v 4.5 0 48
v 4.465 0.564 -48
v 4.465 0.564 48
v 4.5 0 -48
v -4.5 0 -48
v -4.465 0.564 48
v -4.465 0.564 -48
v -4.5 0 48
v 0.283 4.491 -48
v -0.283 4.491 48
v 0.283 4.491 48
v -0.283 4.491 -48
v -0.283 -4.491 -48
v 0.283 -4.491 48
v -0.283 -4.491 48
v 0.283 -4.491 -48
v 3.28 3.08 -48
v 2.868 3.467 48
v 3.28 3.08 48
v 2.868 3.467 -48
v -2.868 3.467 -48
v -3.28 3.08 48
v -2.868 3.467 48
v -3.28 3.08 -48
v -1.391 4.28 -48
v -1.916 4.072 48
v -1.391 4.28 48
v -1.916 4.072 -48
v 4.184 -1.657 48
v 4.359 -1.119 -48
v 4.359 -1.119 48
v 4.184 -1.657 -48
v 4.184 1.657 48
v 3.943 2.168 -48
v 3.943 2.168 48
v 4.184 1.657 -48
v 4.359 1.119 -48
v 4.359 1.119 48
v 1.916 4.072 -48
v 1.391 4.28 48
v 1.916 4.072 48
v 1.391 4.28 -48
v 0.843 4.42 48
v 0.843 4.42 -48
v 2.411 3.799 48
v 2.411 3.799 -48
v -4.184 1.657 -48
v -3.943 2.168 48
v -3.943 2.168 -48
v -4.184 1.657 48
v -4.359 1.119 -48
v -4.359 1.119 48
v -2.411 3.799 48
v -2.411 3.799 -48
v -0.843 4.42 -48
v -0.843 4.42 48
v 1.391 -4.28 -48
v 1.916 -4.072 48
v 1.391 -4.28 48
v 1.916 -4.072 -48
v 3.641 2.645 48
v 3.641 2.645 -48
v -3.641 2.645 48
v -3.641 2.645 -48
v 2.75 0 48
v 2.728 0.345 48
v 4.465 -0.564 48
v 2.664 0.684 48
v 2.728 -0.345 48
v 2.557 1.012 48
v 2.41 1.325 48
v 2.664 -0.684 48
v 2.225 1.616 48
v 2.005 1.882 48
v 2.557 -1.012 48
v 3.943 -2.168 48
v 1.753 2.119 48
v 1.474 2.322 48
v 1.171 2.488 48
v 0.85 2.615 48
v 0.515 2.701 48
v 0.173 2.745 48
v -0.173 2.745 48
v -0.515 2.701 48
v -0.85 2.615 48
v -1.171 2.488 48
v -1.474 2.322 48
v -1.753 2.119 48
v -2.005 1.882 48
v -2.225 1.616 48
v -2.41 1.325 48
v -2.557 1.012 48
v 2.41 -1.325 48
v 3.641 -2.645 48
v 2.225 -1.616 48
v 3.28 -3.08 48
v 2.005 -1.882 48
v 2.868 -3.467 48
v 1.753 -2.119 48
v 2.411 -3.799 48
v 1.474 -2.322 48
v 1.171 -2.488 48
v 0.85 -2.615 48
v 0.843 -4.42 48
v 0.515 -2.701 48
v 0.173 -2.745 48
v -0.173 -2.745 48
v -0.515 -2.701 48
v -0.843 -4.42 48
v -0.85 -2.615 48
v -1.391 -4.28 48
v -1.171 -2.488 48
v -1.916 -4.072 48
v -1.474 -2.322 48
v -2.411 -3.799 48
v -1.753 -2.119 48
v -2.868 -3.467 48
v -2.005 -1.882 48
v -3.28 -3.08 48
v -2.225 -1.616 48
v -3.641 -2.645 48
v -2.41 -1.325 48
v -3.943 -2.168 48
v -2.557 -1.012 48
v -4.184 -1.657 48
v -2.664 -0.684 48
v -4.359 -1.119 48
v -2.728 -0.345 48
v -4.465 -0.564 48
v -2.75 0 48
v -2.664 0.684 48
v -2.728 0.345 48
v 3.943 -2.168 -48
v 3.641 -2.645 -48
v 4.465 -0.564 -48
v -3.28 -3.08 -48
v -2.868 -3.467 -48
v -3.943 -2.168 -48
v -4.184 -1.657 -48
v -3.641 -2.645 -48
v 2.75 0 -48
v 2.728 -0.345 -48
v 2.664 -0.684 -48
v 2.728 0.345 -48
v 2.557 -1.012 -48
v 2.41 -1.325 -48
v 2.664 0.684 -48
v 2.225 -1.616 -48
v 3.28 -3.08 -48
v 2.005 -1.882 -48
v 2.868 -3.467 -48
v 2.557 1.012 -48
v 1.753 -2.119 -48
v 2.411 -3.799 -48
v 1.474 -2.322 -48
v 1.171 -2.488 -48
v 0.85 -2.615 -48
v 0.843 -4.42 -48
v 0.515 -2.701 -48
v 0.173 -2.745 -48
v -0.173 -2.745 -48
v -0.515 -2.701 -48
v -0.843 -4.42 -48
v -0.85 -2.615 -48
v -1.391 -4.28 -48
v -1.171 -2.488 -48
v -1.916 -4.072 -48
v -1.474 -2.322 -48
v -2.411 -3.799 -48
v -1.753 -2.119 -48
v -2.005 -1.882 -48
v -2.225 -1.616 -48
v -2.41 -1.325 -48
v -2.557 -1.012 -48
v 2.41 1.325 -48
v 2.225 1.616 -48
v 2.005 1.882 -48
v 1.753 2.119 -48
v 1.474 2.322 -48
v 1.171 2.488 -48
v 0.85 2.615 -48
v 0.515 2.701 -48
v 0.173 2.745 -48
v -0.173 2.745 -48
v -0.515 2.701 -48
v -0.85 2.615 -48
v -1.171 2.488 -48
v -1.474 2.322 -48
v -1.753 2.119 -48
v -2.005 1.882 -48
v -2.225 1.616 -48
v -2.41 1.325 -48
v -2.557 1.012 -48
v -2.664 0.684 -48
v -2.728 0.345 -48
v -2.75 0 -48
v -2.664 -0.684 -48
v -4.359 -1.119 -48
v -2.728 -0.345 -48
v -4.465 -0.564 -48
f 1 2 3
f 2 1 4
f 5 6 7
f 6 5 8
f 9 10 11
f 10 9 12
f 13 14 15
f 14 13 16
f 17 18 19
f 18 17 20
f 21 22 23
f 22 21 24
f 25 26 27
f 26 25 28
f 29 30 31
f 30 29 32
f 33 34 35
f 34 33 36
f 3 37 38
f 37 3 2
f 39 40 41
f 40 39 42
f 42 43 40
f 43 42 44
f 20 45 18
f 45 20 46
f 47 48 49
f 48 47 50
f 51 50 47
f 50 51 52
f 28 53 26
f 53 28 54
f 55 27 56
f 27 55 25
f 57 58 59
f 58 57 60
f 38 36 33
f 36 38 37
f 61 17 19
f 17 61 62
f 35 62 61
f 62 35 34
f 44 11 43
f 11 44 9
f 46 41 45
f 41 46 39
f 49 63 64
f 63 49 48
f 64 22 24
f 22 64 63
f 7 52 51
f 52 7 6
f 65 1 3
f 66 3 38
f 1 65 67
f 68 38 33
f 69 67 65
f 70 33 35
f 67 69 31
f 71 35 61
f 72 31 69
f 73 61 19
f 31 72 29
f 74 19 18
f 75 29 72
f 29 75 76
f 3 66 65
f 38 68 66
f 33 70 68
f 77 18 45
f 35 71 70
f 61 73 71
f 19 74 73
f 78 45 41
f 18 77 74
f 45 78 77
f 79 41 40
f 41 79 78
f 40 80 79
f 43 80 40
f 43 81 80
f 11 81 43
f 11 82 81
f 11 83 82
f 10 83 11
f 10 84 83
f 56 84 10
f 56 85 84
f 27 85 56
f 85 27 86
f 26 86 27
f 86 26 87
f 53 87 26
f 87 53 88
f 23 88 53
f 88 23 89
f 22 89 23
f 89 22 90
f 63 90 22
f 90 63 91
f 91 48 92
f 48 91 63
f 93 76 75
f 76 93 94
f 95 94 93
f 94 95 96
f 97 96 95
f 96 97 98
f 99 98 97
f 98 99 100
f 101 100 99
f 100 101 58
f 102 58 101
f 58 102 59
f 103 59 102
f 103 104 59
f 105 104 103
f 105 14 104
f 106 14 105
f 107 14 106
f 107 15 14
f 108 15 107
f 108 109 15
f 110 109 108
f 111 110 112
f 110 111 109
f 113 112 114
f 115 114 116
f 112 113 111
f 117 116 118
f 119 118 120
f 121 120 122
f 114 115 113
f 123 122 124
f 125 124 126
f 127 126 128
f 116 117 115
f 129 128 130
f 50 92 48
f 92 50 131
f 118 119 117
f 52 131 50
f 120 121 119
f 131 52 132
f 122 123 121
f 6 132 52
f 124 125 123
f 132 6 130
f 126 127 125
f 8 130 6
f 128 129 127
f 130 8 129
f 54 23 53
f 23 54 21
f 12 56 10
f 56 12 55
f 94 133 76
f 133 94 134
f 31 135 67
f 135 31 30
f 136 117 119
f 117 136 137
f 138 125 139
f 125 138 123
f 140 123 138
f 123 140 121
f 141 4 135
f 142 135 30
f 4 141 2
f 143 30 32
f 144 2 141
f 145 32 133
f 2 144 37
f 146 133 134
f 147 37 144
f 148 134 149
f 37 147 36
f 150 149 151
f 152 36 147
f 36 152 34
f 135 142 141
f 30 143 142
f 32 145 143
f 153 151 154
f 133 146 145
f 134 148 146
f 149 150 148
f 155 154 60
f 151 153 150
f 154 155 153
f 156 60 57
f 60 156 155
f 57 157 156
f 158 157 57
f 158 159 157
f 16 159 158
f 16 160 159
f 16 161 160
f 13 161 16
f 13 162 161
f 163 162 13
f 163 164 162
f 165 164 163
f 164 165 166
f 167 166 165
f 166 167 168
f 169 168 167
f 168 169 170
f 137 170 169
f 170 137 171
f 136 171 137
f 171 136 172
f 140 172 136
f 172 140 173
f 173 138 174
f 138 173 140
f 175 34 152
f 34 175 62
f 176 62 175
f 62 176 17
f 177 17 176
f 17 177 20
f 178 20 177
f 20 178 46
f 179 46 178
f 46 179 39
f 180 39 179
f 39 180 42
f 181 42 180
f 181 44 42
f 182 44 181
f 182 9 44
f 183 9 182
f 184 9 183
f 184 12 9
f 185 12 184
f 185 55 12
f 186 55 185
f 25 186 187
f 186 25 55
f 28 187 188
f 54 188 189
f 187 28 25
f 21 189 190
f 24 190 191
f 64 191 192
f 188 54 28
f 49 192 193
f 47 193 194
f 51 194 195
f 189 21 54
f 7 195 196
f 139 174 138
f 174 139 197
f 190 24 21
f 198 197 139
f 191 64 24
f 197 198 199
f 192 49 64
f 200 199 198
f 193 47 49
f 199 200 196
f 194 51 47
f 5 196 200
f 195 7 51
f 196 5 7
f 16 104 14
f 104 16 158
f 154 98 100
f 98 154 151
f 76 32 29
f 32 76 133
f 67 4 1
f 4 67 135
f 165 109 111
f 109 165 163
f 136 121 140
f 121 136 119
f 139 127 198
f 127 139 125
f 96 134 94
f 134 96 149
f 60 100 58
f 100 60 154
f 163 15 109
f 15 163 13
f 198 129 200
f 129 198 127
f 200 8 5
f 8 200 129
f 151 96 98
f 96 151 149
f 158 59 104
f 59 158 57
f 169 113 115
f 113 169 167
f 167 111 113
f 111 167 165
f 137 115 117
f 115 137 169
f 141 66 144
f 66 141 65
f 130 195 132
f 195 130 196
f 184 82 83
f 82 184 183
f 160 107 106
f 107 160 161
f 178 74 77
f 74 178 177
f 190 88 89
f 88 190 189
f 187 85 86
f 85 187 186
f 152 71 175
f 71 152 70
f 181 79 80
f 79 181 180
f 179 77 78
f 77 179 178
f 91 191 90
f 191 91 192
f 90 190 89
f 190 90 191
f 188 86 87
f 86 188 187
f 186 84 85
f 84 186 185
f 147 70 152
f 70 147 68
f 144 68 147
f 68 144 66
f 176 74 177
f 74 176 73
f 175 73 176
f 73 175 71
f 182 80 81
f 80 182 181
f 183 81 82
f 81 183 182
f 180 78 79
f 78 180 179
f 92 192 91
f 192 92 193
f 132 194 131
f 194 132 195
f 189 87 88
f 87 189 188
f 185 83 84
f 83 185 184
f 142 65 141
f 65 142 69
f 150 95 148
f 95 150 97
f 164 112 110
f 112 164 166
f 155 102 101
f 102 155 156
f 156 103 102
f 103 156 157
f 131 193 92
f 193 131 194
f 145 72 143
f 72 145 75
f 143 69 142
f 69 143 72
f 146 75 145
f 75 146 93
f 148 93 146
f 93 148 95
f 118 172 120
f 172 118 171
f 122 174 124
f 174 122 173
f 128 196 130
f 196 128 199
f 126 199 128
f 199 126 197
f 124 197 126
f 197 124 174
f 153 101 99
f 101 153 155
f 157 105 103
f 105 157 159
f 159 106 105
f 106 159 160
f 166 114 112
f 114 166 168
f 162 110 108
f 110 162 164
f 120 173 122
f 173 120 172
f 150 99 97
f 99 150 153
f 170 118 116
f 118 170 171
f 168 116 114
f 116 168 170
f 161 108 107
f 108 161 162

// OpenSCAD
$fn = 50;


difference() {
	union() {
		translate(v = [0, 0, -48.0000000000]) {
			cylinder(h = 96, r = 4.5000000000);
		}
	}
	union() {
		translate(v = [0, 0, -100.0000000000]) {
			cylinder(h = 200, r = 2.7500000000);
		}
	}
}
